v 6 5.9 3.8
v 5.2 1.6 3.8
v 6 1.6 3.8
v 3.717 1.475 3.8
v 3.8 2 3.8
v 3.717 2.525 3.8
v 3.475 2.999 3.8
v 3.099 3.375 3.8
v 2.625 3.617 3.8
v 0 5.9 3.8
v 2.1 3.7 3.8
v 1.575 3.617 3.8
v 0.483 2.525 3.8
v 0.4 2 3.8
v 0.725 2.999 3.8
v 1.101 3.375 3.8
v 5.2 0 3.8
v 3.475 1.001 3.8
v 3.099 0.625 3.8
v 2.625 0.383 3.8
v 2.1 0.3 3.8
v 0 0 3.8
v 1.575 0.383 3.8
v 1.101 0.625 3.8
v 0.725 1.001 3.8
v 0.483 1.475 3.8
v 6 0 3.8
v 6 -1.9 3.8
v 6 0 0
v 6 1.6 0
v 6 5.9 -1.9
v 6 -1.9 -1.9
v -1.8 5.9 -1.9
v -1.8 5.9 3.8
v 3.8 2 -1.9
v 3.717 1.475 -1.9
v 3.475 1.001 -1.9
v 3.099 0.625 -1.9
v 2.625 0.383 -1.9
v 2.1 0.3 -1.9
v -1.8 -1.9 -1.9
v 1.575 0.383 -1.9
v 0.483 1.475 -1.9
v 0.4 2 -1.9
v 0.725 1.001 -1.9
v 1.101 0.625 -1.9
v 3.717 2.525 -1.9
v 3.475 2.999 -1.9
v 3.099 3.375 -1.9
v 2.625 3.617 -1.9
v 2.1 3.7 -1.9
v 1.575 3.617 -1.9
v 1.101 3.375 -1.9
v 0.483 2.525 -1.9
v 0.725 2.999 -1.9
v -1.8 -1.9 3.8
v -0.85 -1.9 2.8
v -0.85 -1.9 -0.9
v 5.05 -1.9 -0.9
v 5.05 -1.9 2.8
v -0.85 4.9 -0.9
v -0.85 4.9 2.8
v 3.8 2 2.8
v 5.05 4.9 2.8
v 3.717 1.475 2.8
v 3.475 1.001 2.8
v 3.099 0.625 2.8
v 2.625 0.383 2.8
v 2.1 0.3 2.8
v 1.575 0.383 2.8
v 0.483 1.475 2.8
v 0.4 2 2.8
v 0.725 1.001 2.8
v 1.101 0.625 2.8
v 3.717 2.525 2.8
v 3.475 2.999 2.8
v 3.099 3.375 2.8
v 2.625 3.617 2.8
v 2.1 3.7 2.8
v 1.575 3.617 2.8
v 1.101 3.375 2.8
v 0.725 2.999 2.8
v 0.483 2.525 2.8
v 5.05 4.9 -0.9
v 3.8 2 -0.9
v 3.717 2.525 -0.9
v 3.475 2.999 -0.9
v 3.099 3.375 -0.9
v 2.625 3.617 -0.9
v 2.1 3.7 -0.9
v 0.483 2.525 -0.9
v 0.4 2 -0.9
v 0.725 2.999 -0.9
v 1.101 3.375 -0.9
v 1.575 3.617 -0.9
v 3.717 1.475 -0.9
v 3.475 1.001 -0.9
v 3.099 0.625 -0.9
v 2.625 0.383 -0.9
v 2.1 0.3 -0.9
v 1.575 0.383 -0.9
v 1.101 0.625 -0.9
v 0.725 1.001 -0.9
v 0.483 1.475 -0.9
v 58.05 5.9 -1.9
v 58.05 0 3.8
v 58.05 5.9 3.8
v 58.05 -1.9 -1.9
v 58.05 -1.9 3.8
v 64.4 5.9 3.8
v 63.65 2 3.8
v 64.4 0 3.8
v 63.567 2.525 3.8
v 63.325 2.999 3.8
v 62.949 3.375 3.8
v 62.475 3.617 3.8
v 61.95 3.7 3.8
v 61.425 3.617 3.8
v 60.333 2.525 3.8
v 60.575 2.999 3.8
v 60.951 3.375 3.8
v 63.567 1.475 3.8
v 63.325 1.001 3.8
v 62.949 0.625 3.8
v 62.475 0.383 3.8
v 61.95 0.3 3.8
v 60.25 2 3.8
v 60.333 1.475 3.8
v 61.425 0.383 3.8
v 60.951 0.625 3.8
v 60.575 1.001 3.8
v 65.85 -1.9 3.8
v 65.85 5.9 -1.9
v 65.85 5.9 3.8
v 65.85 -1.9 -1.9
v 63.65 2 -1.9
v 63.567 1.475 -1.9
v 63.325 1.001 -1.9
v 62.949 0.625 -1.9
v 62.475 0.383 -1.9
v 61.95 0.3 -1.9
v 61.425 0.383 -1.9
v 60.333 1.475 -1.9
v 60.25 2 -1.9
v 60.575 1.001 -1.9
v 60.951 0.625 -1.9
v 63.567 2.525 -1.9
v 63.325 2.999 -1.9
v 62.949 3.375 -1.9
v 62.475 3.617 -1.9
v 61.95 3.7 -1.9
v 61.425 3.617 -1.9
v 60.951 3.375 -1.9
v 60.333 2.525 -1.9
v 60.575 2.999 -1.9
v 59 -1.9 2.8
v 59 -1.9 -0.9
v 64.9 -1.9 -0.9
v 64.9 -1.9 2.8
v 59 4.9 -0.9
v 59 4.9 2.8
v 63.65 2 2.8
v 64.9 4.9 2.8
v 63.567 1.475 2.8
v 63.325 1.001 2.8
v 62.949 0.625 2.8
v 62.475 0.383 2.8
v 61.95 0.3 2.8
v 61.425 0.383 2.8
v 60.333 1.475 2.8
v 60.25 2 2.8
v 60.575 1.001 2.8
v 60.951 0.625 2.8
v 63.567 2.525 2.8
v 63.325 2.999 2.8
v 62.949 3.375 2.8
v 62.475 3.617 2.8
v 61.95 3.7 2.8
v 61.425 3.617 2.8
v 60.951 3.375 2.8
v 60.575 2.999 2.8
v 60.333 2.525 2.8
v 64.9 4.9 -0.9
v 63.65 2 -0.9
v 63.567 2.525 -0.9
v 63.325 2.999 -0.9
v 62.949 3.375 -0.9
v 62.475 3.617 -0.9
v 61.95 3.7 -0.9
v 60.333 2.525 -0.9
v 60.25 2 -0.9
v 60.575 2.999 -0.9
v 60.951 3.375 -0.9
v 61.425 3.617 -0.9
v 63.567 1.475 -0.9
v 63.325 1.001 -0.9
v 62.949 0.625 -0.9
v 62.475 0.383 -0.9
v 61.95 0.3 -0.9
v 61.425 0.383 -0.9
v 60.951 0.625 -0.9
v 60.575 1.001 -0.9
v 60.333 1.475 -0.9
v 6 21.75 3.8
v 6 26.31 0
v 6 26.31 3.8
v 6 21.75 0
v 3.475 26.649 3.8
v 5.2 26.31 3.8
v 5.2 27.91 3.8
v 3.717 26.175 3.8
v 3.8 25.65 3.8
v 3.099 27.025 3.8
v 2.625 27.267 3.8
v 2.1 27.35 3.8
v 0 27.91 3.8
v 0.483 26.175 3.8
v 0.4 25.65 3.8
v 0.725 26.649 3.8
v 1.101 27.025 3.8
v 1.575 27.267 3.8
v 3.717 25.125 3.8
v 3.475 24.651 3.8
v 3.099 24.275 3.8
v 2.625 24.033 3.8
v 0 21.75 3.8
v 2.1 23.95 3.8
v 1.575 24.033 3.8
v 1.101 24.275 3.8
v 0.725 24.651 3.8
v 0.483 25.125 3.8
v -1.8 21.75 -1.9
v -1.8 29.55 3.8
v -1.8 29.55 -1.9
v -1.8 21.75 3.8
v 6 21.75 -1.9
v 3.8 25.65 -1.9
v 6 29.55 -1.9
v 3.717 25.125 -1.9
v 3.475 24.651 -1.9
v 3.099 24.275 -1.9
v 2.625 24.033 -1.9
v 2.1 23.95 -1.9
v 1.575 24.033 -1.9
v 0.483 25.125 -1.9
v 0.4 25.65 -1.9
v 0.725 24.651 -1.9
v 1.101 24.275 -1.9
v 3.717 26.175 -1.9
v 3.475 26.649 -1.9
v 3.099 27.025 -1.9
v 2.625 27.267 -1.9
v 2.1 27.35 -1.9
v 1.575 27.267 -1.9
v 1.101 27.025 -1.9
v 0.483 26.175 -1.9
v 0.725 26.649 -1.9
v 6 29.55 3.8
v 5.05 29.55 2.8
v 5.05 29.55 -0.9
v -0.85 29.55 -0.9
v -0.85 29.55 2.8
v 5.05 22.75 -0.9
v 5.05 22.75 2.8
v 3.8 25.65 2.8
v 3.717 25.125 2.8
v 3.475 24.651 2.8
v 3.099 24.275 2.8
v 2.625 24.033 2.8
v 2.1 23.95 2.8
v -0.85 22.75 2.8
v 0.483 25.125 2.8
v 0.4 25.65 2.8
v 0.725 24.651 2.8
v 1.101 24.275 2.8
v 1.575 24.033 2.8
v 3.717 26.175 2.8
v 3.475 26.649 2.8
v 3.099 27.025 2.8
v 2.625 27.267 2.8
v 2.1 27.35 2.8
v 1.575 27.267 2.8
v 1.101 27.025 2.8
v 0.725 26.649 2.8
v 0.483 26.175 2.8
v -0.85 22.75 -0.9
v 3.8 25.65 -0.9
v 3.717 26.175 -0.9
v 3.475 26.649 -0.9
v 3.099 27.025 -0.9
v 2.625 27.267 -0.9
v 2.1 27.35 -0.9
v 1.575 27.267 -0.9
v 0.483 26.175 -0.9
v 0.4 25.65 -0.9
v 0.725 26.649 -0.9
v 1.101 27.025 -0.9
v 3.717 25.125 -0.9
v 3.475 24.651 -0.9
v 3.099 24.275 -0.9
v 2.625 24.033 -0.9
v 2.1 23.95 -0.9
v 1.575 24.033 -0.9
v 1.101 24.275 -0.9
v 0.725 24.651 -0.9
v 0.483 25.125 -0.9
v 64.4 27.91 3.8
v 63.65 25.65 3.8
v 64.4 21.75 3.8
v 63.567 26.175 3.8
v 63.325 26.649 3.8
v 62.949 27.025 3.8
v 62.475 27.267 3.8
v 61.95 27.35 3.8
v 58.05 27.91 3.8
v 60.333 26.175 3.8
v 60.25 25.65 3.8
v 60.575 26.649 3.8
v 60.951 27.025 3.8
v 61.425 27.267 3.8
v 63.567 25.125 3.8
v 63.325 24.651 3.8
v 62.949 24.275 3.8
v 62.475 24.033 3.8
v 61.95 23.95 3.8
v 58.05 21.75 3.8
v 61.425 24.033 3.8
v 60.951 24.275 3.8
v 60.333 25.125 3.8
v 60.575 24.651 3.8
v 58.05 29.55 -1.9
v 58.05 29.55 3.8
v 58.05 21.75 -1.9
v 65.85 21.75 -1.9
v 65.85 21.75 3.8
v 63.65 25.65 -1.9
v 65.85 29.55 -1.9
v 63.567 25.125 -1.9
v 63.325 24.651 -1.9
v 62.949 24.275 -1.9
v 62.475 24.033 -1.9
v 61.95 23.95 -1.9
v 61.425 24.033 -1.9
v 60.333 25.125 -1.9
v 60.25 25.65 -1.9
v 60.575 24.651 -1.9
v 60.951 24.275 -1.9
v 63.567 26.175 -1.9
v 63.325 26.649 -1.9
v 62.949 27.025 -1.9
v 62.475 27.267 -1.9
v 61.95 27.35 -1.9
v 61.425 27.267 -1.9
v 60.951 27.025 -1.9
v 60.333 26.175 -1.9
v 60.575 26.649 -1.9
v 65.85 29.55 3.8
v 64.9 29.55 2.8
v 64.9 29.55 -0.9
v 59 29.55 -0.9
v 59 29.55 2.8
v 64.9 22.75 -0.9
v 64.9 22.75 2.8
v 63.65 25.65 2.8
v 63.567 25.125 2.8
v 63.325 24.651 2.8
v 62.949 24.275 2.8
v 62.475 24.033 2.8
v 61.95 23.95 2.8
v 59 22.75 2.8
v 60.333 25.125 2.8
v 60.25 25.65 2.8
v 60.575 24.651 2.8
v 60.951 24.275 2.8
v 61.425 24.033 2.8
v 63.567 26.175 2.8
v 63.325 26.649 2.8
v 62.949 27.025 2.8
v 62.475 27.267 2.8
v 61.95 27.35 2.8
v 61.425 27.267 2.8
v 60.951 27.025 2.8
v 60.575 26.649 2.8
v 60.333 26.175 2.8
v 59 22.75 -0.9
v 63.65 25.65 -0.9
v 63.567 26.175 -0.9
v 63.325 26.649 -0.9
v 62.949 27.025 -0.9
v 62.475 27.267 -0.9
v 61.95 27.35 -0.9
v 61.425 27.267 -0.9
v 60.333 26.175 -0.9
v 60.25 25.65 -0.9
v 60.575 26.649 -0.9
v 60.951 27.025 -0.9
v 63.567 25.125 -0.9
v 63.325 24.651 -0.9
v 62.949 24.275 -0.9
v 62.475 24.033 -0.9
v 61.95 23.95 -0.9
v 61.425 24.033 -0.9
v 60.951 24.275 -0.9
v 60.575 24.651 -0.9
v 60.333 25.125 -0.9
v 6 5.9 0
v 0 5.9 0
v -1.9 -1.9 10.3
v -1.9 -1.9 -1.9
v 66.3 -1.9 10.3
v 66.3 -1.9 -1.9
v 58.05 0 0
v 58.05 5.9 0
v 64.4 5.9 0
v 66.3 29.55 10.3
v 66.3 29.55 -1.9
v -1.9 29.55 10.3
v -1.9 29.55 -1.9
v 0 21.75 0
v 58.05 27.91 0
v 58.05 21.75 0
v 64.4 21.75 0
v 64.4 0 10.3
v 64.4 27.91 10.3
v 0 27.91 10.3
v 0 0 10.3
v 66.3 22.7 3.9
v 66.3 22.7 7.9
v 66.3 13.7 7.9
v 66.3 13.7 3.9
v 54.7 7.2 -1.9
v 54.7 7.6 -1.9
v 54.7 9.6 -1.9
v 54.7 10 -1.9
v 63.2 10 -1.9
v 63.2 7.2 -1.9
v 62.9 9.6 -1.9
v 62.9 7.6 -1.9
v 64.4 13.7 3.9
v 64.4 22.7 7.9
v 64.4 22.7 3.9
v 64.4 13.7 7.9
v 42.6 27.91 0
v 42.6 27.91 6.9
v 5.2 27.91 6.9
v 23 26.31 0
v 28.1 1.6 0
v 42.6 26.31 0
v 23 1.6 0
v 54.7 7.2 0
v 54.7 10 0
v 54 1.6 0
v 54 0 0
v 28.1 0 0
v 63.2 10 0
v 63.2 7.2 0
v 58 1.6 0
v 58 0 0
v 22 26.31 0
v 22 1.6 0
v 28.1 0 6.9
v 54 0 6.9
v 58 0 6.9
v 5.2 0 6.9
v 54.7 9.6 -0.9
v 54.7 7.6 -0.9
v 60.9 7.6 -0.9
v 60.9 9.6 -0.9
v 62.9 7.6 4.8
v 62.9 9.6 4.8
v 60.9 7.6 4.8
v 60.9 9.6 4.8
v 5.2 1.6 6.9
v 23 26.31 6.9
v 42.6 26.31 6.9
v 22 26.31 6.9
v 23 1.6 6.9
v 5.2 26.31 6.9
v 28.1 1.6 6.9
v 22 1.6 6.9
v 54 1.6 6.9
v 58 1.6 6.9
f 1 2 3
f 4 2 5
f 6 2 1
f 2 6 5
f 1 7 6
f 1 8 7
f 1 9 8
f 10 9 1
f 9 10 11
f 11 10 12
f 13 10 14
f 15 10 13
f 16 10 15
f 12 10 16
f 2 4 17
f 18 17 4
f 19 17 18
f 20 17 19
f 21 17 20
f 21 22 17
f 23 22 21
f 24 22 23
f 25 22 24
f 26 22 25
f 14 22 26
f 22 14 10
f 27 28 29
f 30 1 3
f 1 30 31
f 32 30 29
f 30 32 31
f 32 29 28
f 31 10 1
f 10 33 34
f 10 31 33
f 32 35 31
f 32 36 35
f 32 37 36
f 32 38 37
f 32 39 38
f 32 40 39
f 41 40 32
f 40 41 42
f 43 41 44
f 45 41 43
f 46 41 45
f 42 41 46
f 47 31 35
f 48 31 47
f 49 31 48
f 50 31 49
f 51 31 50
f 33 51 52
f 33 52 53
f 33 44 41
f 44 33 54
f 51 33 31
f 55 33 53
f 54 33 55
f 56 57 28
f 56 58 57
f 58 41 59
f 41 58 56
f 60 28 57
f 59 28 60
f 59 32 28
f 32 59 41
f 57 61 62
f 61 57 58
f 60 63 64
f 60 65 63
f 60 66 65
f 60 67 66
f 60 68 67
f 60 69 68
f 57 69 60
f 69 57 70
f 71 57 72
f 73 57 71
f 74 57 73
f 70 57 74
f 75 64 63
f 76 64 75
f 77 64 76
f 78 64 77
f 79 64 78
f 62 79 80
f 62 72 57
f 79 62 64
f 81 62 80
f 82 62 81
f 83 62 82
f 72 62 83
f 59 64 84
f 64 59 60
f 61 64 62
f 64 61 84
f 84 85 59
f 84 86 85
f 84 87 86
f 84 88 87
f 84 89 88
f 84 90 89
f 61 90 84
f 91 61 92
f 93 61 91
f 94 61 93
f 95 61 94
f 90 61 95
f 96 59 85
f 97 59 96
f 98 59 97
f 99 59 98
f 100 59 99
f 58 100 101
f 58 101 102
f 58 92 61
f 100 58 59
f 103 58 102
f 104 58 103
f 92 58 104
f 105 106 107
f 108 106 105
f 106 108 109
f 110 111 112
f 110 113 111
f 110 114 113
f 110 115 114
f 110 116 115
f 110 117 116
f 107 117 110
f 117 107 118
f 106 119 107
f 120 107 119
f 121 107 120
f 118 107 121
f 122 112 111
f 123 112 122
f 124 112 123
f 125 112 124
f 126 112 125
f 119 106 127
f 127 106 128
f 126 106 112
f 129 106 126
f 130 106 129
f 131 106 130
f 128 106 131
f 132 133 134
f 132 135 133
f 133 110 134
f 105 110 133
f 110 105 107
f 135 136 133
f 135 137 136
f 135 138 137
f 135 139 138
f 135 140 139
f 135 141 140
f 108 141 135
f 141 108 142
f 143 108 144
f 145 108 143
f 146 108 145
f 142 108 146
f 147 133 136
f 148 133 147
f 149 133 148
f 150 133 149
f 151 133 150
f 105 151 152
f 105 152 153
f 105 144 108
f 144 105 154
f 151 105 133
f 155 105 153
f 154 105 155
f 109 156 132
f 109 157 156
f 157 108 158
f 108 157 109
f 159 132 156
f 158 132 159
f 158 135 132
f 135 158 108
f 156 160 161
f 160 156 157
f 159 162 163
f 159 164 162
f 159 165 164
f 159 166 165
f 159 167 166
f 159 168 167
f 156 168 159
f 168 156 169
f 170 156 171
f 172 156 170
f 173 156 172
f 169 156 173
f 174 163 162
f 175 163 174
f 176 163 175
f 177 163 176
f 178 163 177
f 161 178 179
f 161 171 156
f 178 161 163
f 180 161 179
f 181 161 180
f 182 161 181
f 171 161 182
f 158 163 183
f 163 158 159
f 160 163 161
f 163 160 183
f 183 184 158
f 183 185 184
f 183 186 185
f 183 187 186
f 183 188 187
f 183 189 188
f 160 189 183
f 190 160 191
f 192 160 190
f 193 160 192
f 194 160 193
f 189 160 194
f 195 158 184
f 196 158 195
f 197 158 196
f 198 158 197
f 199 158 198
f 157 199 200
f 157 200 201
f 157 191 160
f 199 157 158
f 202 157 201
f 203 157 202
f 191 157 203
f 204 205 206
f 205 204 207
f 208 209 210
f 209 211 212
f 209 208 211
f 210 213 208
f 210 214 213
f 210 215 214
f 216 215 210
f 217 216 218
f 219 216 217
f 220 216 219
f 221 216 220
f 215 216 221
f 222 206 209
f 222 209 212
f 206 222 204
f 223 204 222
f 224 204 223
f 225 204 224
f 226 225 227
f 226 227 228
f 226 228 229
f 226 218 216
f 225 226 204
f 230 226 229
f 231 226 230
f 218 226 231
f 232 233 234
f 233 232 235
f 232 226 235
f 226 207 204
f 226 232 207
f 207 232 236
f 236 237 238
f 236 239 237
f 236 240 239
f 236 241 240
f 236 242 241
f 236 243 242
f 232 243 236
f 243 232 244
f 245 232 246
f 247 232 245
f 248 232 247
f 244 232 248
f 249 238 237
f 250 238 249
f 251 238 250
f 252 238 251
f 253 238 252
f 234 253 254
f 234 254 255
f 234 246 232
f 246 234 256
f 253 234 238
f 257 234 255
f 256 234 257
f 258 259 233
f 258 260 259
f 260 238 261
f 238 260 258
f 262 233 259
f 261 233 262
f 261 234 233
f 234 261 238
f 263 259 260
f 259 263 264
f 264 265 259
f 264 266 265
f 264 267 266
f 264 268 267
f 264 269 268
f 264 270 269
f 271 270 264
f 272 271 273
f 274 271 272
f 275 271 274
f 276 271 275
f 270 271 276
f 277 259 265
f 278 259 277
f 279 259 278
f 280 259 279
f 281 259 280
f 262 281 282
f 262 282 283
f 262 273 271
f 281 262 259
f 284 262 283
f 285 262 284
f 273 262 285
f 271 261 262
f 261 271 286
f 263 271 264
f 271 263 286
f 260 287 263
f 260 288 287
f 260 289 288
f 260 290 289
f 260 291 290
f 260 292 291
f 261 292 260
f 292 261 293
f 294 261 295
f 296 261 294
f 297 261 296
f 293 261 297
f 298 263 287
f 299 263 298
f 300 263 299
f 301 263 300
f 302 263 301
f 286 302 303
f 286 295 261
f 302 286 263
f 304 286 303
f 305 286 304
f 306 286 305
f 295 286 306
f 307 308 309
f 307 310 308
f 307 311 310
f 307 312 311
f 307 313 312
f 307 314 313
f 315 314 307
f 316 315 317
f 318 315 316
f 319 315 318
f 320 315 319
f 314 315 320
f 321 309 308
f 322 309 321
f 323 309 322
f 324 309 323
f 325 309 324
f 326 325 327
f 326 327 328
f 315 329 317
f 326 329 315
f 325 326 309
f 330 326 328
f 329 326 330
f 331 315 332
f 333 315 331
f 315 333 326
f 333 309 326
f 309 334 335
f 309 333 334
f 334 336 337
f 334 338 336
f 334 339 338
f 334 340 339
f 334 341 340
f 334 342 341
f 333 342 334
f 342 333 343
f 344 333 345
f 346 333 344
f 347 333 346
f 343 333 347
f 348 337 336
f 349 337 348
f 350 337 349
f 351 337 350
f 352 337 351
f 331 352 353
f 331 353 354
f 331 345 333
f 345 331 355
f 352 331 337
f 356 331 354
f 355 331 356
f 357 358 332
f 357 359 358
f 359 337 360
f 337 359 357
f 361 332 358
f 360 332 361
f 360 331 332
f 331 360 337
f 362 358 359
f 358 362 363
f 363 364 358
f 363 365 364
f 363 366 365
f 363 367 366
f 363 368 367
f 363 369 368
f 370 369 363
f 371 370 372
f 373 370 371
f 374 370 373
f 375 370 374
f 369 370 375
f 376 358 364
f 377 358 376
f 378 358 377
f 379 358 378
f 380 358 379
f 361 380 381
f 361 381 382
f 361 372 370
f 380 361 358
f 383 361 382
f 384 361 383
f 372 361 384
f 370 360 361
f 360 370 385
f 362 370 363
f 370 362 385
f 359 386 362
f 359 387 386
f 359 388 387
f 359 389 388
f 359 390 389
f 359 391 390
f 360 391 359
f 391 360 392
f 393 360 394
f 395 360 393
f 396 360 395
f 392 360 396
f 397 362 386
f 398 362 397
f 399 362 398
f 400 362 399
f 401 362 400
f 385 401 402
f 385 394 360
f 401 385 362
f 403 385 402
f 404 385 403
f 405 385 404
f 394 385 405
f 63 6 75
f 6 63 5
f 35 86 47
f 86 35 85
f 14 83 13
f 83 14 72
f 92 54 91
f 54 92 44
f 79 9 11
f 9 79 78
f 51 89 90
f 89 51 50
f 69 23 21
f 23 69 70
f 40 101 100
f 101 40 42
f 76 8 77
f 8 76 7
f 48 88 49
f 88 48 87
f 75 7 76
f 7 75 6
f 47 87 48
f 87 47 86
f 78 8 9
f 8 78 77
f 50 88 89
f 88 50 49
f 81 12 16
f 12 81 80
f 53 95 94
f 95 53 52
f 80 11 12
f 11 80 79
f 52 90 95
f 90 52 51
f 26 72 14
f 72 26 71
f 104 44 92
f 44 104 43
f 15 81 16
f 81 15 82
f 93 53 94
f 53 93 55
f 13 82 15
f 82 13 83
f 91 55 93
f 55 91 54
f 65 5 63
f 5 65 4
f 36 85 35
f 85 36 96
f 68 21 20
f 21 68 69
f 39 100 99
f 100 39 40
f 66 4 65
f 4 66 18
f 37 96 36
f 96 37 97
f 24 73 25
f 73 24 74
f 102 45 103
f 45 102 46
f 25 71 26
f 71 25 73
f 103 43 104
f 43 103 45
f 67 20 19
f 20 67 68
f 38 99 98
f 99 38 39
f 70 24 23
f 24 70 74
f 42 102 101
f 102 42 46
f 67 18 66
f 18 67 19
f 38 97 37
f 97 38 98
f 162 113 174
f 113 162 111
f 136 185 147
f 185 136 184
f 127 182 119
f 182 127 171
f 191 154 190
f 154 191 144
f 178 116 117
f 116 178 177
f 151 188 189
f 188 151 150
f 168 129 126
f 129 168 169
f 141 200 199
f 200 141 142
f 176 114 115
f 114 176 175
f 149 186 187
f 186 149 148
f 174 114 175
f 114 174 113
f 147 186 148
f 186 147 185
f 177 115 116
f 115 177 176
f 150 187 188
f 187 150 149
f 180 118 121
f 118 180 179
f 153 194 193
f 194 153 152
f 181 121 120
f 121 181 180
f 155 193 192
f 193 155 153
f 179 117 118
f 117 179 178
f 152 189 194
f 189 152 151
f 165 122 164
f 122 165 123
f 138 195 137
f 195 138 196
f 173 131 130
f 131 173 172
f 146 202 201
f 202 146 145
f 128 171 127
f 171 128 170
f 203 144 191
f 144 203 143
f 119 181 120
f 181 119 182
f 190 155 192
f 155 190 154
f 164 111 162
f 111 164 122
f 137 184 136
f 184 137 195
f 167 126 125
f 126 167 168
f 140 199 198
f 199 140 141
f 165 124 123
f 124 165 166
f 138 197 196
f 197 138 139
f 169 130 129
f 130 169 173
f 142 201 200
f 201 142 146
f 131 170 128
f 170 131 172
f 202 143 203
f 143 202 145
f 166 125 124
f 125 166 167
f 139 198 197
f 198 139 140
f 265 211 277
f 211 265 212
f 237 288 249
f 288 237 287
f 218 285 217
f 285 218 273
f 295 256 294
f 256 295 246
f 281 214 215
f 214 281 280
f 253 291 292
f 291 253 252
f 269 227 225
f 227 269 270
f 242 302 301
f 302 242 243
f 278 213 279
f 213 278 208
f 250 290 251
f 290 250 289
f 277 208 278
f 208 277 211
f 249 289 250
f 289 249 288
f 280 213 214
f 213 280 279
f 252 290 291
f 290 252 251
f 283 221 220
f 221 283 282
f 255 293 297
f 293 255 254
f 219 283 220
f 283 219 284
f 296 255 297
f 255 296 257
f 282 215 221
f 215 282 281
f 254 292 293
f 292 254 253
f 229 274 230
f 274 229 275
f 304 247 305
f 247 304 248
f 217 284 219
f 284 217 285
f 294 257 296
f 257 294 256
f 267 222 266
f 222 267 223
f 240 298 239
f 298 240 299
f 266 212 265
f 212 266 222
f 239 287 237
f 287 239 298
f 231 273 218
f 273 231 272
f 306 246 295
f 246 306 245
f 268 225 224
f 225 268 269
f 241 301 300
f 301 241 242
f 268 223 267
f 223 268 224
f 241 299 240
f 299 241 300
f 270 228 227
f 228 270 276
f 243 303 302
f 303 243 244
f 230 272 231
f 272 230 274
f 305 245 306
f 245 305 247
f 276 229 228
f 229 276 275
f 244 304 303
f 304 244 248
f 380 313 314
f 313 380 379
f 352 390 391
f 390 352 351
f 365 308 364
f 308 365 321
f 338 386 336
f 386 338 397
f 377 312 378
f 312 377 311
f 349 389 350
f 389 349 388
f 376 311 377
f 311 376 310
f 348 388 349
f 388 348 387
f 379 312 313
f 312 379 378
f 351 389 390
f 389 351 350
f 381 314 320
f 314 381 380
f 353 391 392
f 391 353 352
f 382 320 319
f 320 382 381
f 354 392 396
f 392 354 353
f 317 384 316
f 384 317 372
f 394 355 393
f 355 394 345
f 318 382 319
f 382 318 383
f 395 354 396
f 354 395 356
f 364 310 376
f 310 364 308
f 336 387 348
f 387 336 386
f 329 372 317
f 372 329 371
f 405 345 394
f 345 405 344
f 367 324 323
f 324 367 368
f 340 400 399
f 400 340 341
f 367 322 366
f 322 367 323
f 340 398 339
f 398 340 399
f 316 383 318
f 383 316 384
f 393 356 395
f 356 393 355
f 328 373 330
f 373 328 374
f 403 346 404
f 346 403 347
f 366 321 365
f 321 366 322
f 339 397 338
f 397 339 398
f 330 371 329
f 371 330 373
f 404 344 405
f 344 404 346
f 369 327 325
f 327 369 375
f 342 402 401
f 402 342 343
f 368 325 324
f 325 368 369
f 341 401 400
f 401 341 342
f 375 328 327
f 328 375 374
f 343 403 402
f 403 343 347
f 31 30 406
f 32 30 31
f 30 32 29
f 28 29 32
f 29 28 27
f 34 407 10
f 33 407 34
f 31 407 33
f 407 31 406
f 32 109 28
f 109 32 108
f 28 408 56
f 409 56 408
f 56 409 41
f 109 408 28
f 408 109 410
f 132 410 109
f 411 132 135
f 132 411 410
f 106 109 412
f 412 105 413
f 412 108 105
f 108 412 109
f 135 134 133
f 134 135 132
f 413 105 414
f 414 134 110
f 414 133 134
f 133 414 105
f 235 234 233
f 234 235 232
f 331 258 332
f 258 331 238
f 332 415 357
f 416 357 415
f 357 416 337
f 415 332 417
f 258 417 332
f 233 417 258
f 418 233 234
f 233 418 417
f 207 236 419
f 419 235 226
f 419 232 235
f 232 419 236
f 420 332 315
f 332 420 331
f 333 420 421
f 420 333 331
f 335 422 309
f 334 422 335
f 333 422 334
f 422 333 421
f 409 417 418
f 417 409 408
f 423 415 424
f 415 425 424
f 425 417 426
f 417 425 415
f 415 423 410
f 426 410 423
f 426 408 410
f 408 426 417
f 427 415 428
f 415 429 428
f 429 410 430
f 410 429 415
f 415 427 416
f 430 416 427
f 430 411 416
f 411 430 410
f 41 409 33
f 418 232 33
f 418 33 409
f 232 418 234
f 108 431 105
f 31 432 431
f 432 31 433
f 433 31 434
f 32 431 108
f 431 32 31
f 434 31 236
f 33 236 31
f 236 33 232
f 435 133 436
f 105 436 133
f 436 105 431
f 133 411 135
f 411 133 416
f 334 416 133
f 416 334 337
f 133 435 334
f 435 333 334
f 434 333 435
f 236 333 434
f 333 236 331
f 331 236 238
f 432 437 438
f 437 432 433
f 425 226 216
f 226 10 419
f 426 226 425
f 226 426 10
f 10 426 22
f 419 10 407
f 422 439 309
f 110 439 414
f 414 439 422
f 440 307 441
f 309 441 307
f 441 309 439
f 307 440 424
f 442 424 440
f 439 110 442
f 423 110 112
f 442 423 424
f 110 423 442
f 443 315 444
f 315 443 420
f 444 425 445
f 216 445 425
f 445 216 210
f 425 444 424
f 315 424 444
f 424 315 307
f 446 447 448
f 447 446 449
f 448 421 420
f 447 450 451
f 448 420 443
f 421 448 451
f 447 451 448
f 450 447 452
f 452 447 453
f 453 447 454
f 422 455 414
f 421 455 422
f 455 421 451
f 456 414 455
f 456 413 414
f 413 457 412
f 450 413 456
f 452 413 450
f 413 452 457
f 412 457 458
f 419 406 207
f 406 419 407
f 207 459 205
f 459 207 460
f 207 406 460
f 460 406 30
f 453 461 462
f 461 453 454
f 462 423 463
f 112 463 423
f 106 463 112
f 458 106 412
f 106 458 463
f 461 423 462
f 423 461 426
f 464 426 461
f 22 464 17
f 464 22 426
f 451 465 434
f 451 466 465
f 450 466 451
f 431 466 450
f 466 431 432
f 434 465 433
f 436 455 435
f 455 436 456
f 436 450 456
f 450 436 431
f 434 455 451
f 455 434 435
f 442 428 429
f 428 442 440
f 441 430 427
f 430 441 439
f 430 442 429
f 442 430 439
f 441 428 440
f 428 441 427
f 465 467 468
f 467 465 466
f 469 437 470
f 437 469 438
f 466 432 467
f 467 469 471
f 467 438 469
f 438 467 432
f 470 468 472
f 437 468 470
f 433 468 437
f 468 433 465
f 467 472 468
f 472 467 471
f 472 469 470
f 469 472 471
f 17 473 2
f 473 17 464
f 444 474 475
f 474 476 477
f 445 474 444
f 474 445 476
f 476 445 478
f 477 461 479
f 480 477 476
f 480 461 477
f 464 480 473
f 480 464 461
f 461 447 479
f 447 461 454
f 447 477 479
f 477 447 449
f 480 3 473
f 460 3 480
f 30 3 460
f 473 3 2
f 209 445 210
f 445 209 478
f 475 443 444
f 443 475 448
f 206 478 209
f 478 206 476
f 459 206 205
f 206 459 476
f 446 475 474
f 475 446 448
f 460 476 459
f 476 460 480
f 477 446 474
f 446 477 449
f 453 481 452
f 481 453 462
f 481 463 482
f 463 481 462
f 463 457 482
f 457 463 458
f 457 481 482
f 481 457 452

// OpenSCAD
wall_thickness = 1.9;

// Related to the "nut slot" posts
nut_width = 5.5;
nut_height = 2.5;
nut_post_width = nut_width + 2.3;
nut_hole_height = nut_height + 1.2;
nut_hole_width = nut_width + 0.4;

nut_hole_depth = (nut_post_width-nut_width)/2 + nut_width;

nut_post_height = nut_hole_height + 2;




// The actual case interior
pcb_width = 64.2+0.2;
pcb_depth = 27.41+0.5;

post_offset_x = 59.6+0.25;
post_offset_y = 23.4+0.25;
//interior_standoff = 2.9+nut_post_height;
interior_standoff = 1.2+nut_post_height;

main_case_height = interior_standoff + 3.4; // The external height of the case 


module make_nut_post(holes=true) {
    translate([-nut_post_width/2, -nut_post_width/2,0])
    difference () {
        // The actual post
        cube([nut_post_width, nut_post_width, nut_post_height]);
        if(holes) {
            // The hole for the nut
            translate([(nut_post_width-nut_hole_width)/2, -1, (nut_post_height-nut_hole_height)/2]) cube([nut_hole_width, nut_post_width, nut_hole_height]);
        }
    }    
}


module make_nut_posts(holes=true) {
    translate([2.1,2,-wall_thickness]) {
        translate([0, 0, 0]) make_nut_post(holes);
        translate([post_offset_x, 0, 0]) make_nut_post(holes);
        translate([0, post_offset_y, 0]) rotate([0,0,180]) make_nut_post(holes);
        translate([post_offset_x, post_offset_y, 0]) rotate([0,0,180]) make_nut_post(holes);
    }
}


module make_holes() {
    post_height = main_case_height*2;
    hole_radius = 1.7;
    translate([0, 0, 0]) cylinder($fn=20, r=hole_radius,h=post_height);
    translate([post_offset_x, 0, 0]) cylinder($fn=20, r=hole_radius,h=post_height);
    translate([0, post_offset_y, 0]) cylinder($fn=20, r=hole_radius,h=post_height);
    translate([post_offset_x, post_offset_y, 0]) cylinder($fn=20, r=hole_radius,h=post_height);
}

difference() {
    make_nut_posts();
    translate([2.1,2,-wall_thickness-0.1]) make_holes();
}

difference () {
    translate([-wall_thickness,-wall_thickness,-wall_thickness]) cube([pcb_width+(wall_thickness*2),pcb_depth+(wall_thickness*2)-0.26,main_case_height+wall_thickness]);
    cube([pcb_width,pcb_depth,main_case_height+wall_thickness]);
    // The screw holes
    translate([2.1,2,-wall_thickness-0.1]) make_holes();
    // Boot switch hole
    //translate([pcb_width-3.6,7.6,-wall_thickness-0.1]) cube([2,2,7+wall_thickness]);
    translate([pcb_width-3.6+2-8.5+0.4, 7.6-0.4,-wall_thickness-0.1]) cube([8.5,2.8,wall_thickness*2]);

    // microUSB hole
    translate([pcb_width-0.1,13.7,interior_standoff-3]) cube([wall_thickness+0.2,9,4]);
    
    make_nut_posts(false);
    
}

translate([5.2,0,0]) cube([22.9, 1.6, interior_standoff]);
translate([5.2,pcb_depth-1.6,0]) cube([37.4, 1.6, interior_standoff]);
translate([22,0,0]) cube([1,pcb_depth,interior_standoff]);
translate([54,0,0]) cube([4,1.6,interior_standoff]);


translate([pcb_width-3.6+2-8.5, 7.6, 0]) {
    // The button arm
    translate([0,0,-wall_thickness]) cube([8.6,2,1]);
    // The button (6.5)
    translate([8.6-2,0,-wall_thickness]) cube([2,2,6.7]);
}
